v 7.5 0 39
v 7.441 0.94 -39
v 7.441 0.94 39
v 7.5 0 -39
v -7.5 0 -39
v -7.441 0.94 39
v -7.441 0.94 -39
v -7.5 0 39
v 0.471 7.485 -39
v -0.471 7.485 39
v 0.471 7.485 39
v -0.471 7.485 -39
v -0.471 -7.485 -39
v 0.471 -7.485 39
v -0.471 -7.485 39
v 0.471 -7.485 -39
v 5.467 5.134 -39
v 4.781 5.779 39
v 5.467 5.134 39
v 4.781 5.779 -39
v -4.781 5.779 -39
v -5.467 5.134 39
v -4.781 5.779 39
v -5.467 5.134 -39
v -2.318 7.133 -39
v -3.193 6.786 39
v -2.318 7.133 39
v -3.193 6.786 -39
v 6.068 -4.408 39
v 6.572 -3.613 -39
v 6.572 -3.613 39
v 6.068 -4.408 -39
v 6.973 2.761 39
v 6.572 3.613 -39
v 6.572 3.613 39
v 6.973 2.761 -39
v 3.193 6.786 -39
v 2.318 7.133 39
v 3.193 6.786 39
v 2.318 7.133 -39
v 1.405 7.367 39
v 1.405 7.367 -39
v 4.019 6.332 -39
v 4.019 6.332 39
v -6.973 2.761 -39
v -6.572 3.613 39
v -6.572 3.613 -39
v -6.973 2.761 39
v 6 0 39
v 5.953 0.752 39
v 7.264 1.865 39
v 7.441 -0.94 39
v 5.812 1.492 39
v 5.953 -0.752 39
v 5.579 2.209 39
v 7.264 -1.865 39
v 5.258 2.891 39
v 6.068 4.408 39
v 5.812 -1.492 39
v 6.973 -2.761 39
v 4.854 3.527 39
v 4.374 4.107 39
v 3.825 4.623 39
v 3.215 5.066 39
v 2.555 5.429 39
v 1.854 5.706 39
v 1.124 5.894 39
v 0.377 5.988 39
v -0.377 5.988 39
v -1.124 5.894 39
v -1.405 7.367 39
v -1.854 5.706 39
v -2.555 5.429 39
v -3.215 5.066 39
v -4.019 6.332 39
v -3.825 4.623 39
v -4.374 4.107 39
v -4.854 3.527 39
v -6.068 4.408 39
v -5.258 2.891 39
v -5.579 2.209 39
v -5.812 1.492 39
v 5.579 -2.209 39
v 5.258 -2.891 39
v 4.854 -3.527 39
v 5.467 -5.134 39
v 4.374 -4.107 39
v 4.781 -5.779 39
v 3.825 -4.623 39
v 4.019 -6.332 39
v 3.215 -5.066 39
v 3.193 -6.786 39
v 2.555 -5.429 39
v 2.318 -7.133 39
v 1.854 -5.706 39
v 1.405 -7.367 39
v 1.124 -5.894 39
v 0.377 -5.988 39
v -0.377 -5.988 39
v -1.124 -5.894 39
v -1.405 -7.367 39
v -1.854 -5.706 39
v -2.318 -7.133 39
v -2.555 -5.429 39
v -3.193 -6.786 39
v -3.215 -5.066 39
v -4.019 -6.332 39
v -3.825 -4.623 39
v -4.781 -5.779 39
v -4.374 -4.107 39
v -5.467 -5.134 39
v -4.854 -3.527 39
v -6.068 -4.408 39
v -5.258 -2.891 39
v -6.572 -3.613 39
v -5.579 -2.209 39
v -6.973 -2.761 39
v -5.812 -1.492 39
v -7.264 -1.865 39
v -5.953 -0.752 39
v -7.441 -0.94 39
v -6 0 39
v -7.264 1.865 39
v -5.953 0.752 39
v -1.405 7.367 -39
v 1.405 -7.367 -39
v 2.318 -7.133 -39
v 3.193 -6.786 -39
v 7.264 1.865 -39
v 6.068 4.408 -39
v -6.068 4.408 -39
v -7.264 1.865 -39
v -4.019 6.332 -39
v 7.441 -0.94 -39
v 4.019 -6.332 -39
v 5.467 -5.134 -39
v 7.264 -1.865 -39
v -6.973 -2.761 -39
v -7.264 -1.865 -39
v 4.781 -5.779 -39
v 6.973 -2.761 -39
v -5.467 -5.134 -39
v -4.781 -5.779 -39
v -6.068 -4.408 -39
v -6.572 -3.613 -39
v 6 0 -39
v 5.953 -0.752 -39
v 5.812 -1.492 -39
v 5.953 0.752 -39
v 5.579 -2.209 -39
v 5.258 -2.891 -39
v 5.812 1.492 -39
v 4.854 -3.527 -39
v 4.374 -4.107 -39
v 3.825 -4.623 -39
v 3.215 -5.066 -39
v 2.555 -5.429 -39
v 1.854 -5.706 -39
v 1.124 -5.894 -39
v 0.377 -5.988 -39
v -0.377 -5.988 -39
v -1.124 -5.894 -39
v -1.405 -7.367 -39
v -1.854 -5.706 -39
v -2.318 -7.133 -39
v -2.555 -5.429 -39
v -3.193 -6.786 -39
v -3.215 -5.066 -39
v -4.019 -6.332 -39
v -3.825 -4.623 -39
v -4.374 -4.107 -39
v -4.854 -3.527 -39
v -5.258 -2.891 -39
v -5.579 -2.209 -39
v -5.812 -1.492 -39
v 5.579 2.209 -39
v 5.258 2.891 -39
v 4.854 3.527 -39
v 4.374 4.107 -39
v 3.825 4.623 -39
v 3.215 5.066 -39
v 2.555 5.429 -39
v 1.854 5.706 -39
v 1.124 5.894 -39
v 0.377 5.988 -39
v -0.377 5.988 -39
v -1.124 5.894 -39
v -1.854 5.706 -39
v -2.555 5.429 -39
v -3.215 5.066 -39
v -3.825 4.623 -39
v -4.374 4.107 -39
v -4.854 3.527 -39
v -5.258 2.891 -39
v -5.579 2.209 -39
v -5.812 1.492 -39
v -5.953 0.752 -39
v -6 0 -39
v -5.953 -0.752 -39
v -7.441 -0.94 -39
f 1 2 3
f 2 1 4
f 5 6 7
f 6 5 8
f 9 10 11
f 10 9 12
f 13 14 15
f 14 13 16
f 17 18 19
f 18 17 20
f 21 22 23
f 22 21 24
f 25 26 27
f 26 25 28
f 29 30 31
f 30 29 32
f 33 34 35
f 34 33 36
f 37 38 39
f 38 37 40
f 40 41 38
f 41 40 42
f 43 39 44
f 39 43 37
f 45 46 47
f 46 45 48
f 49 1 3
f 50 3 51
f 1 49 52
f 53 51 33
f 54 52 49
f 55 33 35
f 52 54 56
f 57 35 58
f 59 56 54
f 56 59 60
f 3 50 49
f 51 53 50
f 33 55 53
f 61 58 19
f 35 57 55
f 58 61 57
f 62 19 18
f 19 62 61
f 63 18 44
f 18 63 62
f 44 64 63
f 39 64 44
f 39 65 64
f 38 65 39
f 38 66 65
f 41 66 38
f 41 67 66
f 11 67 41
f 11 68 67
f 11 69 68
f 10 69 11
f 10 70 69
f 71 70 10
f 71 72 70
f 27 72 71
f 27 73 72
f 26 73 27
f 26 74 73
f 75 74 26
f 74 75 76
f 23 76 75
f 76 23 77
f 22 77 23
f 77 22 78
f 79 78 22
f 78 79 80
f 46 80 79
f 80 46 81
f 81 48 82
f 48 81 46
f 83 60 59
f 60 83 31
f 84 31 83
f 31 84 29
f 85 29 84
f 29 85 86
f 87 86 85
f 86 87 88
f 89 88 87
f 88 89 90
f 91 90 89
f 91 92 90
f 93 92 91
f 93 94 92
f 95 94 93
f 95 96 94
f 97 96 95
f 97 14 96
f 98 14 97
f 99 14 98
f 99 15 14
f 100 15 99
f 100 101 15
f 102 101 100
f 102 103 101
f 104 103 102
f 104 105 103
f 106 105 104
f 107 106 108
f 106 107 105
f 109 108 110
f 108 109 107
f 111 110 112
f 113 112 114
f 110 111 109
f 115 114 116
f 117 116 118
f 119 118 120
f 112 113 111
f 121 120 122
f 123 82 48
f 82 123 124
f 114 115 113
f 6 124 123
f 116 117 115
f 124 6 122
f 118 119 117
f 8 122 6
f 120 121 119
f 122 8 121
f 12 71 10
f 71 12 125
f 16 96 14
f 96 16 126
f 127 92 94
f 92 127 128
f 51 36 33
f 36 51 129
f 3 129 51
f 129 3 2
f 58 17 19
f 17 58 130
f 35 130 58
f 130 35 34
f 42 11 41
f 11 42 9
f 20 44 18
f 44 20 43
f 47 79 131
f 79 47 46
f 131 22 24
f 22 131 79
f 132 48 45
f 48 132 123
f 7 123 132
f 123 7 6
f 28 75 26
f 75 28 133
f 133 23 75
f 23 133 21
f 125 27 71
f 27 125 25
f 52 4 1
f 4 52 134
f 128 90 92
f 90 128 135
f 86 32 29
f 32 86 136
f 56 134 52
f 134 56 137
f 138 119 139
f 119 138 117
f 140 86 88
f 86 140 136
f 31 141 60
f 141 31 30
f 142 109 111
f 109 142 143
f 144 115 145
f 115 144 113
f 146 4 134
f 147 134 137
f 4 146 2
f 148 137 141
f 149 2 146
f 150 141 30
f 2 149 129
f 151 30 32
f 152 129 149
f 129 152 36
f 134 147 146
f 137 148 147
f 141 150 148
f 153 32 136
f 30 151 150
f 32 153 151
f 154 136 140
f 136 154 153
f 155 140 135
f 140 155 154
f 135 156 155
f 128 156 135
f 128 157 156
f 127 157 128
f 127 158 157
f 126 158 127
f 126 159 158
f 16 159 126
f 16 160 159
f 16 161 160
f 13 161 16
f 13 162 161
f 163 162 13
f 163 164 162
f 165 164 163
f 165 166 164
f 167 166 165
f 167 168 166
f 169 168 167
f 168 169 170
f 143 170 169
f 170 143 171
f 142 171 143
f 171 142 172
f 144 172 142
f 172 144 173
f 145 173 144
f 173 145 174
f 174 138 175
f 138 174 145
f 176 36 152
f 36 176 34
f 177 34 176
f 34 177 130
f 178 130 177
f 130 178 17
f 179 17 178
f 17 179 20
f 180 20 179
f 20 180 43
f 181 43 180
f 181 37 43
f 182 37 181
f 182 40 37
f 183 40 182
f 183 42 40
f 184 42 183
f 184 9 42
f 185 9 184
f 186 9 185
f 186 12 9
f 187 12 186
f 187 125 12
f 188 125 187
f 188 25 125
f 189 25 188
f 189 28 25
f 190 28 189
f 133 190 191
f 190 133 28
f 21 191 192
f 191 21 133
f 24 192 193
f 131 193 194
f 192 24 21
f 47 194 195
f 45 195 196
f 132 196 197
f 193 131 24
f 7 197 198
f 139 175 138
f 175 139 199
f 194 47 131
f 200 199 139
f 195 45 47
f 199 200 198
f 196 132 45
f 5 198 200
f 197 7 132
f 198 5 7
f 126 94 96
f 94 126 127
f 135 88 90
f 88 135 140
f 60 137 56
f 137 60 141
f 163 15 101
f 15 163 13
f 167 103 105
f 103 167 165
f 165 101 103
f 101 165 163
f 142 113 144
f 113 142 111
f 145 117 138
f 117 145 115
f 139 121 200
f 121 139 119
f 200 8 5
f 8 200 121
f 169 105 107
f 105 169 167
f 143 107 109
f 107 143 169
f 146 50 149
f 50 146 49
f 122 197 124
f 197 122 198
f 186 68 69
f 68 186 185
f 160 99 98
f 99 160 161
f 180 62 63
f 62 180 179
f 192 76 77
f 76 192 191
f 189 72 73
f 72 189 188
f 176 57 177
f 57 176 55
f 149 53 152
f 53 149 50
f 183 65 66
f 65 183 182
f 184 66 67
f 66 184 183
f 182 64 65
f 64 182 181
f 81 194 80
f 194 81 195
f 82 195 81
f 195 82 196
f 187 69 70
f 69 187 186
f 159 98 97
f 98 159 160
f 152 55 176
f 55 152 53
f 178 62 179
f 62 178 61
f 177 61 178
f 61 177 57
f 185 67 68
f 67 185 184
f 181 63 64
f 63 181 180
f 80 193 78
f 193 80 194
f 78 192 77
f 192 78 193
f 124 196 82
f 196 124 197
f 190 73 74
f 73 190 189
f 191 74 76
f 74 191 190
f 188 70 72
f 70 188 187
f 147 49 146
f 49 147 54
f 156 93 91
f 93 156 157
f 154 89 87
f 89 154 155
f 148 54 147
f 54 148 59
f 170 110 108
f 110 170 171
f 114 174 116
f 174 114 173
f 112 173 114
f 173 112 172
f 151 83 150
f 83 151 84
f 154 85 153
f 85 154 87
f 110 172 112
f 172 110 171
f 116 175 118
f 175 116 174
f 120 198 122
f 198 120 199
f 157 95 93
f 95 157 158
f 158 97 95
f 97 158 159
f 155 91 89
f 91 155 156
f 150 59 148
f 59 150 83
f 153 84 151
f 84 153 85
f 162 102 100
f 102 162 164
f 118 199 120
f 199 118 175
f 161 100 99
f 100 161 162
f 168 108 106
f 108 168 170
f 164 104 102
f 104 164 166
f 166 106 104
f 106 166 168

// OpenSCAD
$fn = 50;


difference() {
	union() {
		translate(v = [0, 0, -39.0000000000]) {
			cylinder(h = 78, r = 7.5000000000);
		}
	}
	union() {
		translate(v = [0, 0, -100.0000000000]) {
			cylinder(h = 200, r = 6);
		}
	}
}
